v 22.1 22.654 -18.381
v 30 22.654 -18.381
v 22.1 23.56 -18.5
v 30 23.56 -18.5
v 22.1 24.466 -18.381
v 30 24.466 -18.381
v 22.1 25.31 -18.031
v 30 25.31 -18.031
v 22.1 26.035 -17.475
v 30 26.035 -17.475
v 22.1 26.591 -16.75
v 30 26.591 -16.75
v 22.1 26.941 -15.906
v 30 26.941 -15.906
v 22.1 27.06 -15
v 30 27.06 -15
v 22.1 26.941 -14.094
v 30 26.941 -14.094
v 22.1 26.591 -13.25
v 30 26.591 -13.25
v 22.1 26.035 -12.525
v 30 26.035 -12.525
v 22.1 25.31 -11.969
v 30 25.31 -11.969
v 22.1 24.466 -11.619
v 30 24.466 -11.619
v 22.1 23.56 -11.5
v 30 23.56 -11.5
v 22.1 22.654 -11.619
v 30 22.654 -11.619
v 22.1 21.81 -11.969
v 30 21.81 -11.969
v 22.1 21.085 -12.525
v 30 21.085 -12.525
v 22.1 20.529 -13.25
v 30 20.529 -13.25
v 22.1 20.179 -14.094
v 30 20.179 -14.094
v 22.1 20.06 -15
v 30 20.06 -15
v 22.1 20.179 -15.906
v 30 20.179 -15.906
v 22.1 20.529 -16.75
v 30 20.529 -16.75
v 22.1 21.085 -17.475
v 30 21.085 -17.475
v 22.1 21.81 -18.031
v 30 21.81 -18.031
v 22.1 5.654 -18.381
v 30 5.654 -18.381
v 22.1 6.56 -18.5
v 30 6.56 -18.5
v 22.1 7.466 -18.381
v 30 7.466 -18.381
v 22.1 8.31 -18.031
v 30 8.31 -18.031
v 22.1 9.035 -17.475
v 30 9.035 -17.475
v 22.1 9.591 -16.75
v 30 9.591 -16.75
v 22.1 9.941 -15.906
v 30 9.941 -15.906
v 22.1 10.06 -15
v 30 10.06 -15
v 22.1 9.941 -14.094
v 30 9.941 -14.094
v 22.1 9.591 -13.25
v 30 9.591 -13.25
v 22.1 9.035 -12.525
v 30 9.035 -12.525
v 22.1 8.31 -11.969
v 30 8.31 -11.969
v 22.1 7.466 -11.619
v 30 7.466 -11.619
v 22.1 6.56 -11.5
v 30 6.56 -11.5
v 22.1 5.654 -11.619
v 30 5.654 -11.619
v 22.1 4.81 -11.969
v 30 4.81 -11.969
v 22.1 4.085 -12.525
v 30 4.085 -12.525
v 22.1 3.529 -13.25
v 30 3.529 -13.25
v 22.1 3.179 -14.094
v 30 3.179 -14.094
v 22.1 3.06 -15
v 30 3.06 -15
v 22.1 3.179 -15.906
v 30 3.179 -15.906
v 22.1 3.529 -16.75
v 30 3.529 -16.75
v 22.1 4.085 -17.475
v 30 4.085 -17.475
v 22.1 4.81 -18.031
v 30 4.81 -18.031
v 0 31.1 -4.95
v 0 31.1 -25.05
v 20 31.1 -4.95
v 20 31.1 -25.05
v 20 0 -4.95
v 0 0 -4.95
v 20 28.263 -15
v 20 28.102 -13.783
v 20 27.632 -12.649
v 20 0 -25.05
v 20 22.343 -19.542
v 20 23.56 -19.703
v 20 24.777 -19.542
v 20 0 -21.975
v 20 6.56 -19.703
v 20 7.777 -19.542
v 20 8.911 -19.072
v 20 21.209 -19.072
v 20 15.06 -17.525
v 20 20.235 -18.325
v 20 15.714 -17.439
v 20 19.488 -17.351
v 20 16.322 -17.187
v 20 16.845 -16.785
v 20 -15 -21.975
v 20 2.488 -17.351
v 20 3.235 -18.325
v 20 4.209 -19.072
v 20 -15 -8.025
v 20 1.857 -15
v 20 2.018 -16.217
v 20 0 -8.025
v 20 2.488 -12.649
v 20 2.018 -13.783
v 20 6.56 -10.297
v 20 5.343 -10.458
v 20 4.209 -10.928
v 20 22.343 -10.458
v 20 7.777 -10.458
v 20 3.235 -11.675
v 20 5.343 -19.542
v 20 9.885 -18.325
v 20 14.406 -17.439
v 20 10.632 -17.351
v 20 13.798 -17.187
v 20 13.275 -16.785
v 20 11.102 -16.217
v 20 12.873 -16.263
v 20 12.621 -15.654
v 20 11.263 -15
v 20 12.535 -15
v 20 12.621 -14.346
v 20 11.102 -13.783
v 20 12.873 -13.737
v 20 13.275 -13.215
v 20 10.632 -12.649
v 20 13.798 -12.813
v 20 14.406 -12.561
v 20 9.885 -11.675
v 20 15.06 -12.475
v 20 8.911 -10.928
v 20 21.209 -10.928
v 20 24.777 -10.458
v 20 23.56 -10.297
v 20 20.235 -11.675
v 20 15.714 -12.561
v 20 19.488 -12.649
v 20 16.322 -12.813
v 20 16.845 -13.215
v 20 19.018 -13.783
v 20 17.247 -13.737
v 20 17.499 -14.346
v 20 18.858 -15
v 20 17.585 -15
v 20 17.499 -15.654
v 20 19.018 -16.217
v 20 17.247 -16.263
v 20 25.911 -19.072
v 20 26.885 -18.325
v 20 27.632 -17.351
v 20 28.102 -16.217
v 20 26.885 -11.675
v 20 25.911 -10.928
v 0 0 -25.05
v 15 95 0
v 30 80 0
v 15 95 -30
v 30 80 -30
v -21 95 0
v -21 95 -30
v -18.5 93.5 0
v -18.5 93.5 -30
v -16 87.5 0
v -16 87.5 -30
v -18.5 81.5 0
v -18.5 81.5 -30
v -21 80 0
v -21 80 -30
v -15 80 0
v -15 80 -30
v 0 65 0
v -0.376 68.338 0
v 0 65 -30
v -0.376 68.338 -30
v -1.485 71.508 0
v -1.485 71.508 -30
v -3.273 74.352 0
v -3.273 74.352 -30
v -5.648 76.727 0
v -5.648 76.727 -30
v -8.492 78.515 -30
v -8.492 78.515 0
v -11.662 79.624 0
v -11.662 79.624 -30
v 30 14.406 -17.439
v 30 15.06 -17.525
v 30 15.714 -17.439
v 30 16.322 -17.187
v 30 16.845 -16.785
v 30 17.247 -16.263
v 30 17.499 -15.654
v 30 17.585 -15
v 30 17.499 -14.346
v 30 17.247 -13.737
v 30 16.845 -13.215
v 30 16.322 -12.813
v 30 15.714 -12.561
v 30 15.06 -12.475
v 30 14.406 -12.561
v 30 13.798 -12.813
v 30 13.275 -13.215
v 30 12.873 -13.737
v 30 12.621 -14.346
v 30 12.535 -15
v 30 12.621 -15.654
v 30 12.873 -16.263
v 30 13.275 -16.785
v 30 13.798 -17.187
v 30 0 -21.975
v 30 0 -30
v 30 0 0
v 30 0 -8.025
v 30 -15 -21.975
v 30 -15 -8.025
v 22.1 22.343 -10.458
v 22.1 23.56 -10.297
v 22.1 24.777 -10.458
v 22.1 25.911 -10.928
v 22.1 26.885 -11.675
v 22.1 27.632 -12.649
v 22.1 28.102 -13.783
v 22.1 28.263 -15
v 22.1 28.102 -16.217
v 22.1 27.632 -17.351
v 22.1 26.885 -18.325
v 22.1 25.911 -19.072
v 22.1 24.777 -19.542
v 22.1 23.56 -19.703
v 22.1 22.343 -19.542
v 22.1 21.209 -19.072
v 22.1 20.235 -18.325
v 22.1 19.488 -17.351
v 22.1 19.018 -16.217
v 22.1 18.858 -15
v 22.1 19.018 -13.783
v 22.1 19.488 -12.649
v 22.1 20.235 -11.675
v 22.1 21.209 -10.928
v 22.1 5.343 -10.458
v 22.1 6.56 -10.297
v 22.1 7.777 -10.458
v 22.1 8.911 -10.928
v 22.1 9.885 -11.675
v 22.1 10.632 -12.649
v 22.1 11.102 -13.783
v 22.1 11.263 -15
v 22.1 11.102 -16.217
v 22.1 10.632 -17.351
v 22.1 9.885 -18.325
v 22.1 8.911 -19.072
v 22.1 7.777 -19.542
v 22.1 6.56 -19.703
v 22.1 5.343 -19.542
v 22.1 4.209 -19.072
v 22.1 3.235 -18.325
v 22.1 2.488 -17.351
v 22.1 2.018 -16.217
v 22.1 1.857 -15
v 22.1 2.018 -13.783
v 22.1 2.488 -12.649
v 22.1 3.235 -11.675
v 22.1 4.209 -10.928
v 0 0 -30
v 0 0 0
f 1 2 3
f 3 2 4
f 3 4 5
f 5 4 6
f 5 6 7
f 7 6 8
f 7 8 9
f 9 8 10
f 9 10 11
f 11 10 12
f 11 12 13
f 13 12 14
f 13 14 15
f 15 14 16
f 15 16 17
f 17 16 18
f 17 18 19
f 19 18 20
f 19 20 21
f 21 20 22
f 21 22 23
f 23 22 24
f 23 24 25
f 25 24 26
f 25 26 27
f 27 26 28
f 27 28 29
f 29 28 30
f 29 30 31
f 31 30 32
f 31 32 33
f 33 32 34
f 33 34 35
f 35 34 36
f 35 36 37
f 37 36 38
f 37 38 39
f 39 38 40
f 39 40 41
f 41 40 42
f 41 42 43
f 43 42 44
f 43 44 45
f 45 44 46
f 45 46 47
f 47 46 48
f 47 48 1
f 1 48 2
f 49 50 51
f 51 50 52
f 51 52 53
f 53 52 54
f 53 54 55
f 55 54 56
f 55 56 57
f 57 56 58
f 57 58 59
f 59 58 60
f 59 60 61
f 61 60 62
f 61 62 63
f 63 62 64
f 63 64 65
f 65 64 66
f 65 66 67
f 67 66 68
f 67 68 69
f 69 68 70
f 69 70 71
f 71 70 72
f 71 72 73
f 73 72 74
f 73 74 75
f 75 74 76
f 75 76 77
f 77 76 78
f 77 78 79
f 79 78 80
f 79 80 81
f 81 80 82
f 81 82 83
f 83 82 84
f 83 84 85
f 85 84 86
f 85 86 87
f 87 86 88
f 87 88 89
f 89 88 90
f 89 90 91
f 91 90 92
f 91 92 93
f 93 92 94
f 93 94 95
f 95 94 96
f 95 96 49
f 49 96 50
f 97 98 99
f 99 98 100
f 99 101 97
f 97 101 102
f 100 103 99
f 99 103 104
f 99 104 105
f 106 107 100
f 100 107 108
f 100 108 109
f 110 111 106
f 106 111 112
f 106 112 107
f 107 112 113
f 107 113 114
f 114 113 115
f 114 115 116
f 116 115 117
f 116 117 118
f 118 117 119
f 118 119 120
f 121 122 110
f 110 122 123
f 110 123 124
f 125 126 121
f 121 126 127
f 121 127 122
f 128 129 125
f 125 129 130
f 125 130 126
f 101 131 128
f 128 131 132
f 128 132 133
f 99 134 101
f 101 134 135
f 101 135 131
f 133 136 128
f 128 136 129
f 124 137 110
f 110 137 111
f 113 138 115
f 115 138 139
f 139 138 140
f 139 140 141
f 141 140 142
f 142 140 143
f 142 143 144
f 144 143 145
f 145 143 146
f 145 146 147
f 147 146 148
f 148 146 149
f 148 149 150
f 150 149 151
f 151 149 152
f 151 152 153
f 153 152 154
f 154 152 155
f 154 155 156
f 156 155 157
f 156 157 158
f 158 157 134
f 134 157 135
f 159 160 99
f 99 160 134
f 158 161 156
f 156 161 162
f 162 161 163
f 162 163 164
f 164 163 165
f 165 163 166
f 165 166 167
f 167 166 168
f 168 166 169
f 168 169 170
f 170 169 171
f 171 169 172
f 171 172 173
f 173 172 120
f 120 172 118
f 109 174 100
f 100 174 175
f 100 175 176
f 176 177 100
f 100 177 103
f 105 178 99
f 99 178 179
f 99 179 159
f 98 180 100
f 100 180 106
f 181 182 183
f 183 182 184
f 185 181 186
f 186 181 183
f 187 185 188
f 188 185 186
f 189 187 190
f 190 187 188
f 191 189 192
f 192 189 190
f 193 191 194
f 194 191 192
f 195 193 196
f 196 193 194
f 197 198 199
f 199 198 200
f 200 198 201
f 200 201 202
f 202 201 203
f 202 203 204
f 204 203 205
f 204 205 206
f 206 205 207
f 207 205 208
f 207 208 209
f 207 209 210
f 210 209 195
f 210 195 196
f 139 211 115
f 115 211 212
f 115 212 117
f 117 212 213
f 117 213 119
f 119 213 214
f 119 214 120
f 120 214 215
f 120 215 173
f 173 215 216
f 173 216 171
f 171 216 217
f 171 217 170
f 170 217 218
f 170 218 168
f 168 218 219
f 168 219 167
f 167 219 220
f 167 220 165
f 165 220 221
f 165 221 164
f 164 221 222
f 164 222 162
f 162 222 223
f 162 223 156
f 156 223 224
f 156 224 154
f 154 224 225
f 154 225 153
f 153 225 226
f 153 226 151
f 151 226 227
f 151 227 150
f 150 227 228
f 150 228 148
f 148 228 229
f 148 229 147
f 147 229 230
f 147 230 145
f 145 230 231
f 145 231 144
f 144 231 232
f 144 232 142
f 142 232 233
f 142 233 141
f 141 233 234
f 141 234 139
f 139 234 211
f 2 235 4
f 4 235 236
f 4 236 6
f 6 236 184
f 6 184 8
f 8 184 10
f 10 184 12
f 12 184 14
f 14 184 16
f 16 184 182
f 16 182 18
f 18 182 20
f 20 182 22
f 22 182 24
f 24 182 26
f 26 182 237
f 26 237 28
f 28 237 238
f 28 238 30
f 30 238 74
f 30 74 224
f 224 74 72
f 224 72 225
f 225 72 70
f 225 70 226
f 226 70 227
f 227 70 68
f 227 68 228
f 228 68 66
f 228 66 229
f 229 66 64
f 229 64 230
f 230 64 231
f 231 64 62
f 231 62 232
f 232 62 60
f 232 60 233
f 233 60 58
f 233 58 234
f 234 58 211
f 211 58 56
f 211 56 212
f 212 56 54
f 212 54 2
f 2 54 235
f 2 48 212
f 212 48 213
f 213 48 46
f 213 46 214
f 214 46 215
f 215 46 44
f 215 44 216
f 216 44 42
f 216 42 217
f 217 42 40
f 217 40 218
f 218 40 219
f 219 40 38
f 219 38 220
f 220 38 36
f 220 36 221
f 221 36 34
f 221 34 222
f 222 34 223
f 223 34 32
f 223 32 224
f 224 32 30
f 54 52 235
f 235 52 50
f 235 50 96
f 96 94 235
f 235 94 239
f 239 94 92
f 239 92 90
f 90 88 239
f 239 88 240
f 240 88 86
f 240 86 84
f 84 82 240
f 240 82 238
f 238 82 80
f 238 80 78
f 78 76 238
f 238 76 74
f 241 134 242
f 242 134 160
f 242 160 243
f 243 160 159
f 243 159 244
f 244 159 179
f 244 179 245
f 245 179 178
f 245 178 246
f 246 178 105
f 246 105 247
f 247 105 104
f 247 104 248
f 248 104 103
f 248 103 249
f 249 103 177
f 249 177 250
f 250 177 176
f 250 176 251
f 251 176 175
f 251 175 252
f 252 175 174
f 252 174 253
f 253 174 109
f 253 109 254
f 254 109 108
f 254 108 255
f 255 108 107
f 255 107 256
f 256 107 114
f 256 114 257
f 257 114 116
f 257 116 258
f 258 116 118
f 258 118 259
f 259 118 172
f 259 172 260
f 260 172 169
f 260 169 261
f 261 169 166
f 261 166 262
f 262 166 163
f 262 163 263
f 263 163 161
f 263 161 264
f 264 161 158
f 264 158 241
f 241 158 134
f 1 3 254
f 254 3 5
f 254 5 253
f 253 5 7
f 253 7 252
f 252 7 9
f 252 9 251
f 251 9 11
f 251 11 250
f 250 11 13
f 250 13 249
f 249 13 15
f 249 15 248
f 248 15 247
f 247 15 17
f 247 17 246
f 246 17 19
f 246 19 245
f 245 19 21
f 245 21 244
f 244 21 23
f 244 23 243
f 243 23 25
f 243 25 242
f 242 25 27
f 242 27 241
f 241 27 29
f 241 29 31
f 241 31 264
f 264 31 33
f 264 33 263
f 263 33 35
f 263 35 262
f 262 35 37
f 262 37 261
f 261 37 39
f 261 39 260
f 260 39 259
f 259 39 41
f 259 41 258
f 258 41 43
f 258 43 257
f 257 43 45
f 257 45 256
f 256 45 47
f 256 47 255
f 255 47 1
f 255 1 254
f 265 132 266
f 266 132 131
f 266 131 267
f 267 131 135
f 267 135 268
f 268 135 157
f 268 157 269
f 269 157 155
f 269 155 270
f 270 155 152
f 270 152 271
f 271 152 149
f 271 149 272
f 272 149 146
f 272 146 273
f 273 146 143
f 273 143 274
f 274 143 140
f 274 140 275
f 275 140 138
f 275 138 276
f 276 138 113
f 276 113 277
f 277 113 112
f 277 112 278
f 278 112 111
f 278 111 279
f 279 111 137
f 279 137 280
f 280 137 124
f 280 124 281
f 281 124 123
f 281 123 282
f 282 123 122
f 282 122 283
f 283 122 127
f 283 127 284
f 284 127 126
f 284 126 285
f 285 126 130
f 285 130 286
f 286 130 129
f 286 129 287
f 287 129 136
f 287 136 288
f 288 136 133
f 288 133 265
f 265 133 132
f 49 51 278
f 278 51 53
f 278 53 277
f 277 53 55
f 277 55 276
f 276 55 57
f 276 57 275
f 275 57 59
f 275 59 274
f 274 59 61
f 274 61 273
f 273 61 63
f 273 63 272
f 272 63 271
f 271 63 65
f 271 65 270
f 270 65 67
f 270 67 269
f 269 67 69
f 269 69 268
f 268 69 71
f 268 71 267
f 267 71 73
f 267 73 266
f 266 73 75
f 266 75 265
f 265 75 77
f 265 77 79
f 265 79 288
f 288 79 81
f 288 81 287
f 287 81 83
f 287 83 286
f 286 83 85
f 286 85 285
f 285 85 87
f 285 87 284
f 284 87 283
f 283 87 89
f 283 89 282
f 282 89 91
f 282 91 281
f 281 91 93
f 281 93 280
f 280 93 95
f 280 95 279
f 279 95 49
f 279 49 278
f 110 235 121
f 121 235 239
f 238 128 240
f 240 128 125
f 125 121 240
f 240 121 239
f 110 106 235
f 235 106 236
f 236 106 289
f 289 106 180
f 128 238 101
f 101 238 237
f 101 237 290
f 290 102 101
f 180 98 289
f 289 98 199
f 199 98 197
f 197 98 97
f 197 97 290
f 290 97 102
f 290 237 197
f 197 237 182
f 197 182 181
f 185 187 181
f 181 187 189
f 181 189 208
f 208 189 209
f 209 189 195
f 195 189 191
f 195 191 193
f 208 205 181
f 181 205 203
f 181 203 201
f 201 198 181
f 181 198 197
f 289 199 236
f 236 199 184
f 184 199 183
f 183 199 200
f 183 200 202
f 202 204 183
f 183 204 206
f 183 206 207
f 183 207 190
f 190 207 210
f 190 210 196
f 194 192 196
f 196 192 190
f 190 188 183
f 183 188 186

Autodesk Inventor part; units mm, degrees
ref_plane "YZ Plane" through (0, 0, 0) normal (1, 0, 0) x (0, 1, 0)
ref_plane "XZ Plane" through (0, 0, 0) normal (0, 1, 0) x (-1, 0, 0)
ref_plane "XY Plane" through (0, 0, 0) normal (0, 0, 1) x (1, 0, 0)
sketch "Sketch1" plane through (0, 0, 0) normal (0, 0, 1) x (1, 0, 0)
  line L0 (0, 0) -> (25, 0)
  line L1 (25, 0) -> (25, 40)
  line L2 (25, 40) -> (0, 40)
  line L3 (0, 40) -> (0, 0)
  dimension "d1" = 25
  dimension "d2" = 40
  dimension "d3" = 25
extrude "Extrusion1" add sketch "Sketch1" against normal blind 30
sketch "Sketch2" plane through (25, 0, 0) normal (1, 0, 0) x (0, 0, -1)
  line L0 (0, 0) -> (30, 0) projected
  circle A0 centre (15, 6.56) radius 2.46
extrude "Extrusion2" cut sketch "Sketch2" against normal blind 30
sketch "Sketch3" plane through (0, 0, 0) normal (-1, 0, 0) x (0, 0, 1)
  line L0 (0, 0) -> (-30, 0) projected
  line L1 (-25.05, 0) -> (-4.95, 0)
  line L2 (-4.95, 0) -> (-4.95, 33.12)
  line L3 (-4.95, 33.12) -> (-25.05, 33.12)
  line L4 (-25.05, 33.12) -> (-25.05, 0)
  dimension "d11" = 20.1
extrude "Extrusion3" cut sketch "Sketch3" against normal blind 20
sketch "Sketch4" plane through (0, 0, 0) normal (0, -1, 0) x (1, 0, 0)
  line L0 (20, -4.95) -> (20, -25.05) projected
  line L1 (20, -15) -> (25, -15)
  line L2 (25, 0) -> (25, -30) projected
  line L3 (20, -8.025) -> (25, -8.025)
  line L4 (25, -8.025) -> (25, -21.975)
  line L5 (25, -21.975) -> (20, -21.975)
  line L6 (20, -21.975) -> (20, -8.025)
  line L7 (20, -8.025) -> (25, -21.975) construction
  line L8 (25, -8.025) -> (20, -21.975) construction
  line L9 (25, -12.54) -> (25, -17.46) projected
  point P0 (0, 0)
  point P1 (22.5, -15)
  dimension "d14" = 13.95
extrude "Extrusion4" add sketch "Sketch4" along normal blind 15
sketch "Sketch5" plane through (20, 0, 0) normal (-1, 0, 0) x (0, 0, 1)
  circle A0 centre (-15, 6.56) radius 2.46 projected
  circle A1 centre (-15, 6.56) radius 4.7025
  circle A2 centre (-15, 6.56) radius 2.46 projected
  circle A3 centre (-15, 6.56) radius 2.46
  point P0 (0, 0)
  dimension "d17" = 9.405
extrude "Extrusion5" cut sketch "Sketch5" against normal blind 2.1
sketch "Sketch6" plane through (25, 0, 0) normal (1, 0, 0) x (0, 0, -1)
  circle A0 centre (15, 6.56) radius 4.7025 projected
  line L0 (15, 6.56) -> (15, 23.56)
  circle A1 centre (15, 23.56) radius 2.46
  point P0 (0, 0)
  dimension "d20" = 17
  dimension "d21" = 4.92
extrude "Extrusion6" cut sketch "Sketch6" against normal blind 10 contours A1
sketch "Sketch7" plane through (20, 0, 0) normal (-1, 0, 0) x (0, 0, 1)
  circle A0 centre (-15, 23.56) radius 2.46 projected
  circle A1 centre (-15, 23.56) radius 4.7025
  point P0 (0, 0)
  dimension "d24" = 9.405
extrude "Extrusion7" cut sketch "Sketch7" against normal blind 2.1
sketch "Sketch9" plane through (25, 0, 0) normal (1, 0, 0) x (0, 0, -1)
  circle A0 centre (15, 6.56) radius 2.46 projected
  circle A1 centre (15, 6.56) radius 2.46
  circle A2 centre (15, 23.56) radius 2.46 projected
  circle A3 centre (15, 23.56) radius 2.46
  line L0 (30, 40) -> (30, 0) projected
  line L1 (30, 0) -> (30, 40)
  line L2 (30, 40) -> (0, 40)
  line L3 (0, 40) -> (0, 0)
  line L4 (0, 0) -> (8.025, 0) projected
  line L5 (21.975, 0) -> (21.975, -15)
  line L6 (21.975, -15) -> (8.025, -15)
  line L7 (8.025, -15) -> (8.025, 0)
  line L8 (0, 0) -> (8.025, 0)
  line L9 (21.975, 0) -> (30, 0)
extrude "Extrusion8" add sketch "Sketch9" along normal blind 5
sketch "Sketch10" plane through (0, 40, 0) normal (0, 1, 0) x (1, 0, 0)
  line L0 (0, 30) -> (30, 30) projected
  line L1 (30, 0) -> (0, 0) projected
  line L2 (0, 30) -> (30, 30)
  line L3 (30, 30) -> (30, 0)
  line L4 (30, 0) -> (0, 0)
  line L5 (0, 0) -> (0, 30)
extrude "Extrusion9" add sketch "Sketch10" along normal blind 10
sketch "Sketch12" plane through (30, 0, 0) normal (1, 0, 0) x (0, 0, -1)
  circle A0 centre (15, 6.56) radius 2.46 projected
  line L0 (15, 6.56) -> (15, 15.06)
  circle A1 centre (15, 15.06) radius 2.525
  point P0 (0, 0)
  dimension "d31" = 8.5
  dimension "d33" = 5.05
extrude "Extrusion10" cut sketch "Sketch12" against normal blind 30 contours A1
sketch "Sketch14" plane through (0, 0, 0) normal (0, 0, 1) x (1, 0, 0)
  line L0 (30, 50) -> (0, 50) projected
  line L1 (0, 50) -> (0, 65)
  line L2 (30, 80) -> (15, 95)
  line L3 (-21, 95) -> (15, 95)
  line L4 (30, 0) -> (30, 50) projected
  line L5 (30, 80) -> (30, 50)
  arc A0 (0, 65) -> (-15, 80) centre (-15, 65) ccw
  line L6 (-15, 80) -> (-21, 80)
  line L7 (-18.5, 93.5) -> (-21, 95)
  line L8 (-18.5, 81.5) -> (-21, 80)
  line L9 (-16, 87.5) -> (-18.5, 81.5)
  line L10 (-16, 87.5) -> (-18.5, 93.5)
  point P0 (0, 0)
  point P1 (0, 80)
  dimension "d47" = 30
  dimension "d54" = 15
  dimension "d70" = 6
  dimension "d72" = 15
extrude "Extrusion12" add sketch "Sketch14" against normal blind 30
sketch "Sketch15" plane through (0, 0, -25.05) normal (-1, 0, 0) x (0, 0, 1)
  line L0 (0, 33.12) -> (20.1, 33.12) projected
  line L1 (20.1, 33.12) -> (20.1, 0) projected
  line L2 (0, 33.12) -> (20.1, 33.12)
  line L3 (20.1, 33.12) -> (20.1, 31.1)
  line L4 (20.1, 31.1) -> (0, 31.1)
  line L5 (0, 31.1) -> (0, 33.12)
  point P0 (25.05, 0)
  dimension "d57" = 2.02
extrude "Extrusion13" add sketch "Sketch15" against normal blind 20
sketch "Sketch17" plane through (30, 0, 0) normal (1, 0, 0) x (0, 0, -1)
  circle A0 centre (15, 23.56) radius 2.46 projected
  circle A1 centre (15, 23.56) radius 3.5
  circle A2 centre (15, 6.56) radius 2.46 projected
  circle A3 centre (15, 6.56) radius 3.5
  point P0 (0, 0)
  dimension "d66" = 7
  dimension "d67" = 7
extrude "Extrusion14" cut sketch "Sketch17" against normal blind 10
properties part number "10mm_x_30mm"
